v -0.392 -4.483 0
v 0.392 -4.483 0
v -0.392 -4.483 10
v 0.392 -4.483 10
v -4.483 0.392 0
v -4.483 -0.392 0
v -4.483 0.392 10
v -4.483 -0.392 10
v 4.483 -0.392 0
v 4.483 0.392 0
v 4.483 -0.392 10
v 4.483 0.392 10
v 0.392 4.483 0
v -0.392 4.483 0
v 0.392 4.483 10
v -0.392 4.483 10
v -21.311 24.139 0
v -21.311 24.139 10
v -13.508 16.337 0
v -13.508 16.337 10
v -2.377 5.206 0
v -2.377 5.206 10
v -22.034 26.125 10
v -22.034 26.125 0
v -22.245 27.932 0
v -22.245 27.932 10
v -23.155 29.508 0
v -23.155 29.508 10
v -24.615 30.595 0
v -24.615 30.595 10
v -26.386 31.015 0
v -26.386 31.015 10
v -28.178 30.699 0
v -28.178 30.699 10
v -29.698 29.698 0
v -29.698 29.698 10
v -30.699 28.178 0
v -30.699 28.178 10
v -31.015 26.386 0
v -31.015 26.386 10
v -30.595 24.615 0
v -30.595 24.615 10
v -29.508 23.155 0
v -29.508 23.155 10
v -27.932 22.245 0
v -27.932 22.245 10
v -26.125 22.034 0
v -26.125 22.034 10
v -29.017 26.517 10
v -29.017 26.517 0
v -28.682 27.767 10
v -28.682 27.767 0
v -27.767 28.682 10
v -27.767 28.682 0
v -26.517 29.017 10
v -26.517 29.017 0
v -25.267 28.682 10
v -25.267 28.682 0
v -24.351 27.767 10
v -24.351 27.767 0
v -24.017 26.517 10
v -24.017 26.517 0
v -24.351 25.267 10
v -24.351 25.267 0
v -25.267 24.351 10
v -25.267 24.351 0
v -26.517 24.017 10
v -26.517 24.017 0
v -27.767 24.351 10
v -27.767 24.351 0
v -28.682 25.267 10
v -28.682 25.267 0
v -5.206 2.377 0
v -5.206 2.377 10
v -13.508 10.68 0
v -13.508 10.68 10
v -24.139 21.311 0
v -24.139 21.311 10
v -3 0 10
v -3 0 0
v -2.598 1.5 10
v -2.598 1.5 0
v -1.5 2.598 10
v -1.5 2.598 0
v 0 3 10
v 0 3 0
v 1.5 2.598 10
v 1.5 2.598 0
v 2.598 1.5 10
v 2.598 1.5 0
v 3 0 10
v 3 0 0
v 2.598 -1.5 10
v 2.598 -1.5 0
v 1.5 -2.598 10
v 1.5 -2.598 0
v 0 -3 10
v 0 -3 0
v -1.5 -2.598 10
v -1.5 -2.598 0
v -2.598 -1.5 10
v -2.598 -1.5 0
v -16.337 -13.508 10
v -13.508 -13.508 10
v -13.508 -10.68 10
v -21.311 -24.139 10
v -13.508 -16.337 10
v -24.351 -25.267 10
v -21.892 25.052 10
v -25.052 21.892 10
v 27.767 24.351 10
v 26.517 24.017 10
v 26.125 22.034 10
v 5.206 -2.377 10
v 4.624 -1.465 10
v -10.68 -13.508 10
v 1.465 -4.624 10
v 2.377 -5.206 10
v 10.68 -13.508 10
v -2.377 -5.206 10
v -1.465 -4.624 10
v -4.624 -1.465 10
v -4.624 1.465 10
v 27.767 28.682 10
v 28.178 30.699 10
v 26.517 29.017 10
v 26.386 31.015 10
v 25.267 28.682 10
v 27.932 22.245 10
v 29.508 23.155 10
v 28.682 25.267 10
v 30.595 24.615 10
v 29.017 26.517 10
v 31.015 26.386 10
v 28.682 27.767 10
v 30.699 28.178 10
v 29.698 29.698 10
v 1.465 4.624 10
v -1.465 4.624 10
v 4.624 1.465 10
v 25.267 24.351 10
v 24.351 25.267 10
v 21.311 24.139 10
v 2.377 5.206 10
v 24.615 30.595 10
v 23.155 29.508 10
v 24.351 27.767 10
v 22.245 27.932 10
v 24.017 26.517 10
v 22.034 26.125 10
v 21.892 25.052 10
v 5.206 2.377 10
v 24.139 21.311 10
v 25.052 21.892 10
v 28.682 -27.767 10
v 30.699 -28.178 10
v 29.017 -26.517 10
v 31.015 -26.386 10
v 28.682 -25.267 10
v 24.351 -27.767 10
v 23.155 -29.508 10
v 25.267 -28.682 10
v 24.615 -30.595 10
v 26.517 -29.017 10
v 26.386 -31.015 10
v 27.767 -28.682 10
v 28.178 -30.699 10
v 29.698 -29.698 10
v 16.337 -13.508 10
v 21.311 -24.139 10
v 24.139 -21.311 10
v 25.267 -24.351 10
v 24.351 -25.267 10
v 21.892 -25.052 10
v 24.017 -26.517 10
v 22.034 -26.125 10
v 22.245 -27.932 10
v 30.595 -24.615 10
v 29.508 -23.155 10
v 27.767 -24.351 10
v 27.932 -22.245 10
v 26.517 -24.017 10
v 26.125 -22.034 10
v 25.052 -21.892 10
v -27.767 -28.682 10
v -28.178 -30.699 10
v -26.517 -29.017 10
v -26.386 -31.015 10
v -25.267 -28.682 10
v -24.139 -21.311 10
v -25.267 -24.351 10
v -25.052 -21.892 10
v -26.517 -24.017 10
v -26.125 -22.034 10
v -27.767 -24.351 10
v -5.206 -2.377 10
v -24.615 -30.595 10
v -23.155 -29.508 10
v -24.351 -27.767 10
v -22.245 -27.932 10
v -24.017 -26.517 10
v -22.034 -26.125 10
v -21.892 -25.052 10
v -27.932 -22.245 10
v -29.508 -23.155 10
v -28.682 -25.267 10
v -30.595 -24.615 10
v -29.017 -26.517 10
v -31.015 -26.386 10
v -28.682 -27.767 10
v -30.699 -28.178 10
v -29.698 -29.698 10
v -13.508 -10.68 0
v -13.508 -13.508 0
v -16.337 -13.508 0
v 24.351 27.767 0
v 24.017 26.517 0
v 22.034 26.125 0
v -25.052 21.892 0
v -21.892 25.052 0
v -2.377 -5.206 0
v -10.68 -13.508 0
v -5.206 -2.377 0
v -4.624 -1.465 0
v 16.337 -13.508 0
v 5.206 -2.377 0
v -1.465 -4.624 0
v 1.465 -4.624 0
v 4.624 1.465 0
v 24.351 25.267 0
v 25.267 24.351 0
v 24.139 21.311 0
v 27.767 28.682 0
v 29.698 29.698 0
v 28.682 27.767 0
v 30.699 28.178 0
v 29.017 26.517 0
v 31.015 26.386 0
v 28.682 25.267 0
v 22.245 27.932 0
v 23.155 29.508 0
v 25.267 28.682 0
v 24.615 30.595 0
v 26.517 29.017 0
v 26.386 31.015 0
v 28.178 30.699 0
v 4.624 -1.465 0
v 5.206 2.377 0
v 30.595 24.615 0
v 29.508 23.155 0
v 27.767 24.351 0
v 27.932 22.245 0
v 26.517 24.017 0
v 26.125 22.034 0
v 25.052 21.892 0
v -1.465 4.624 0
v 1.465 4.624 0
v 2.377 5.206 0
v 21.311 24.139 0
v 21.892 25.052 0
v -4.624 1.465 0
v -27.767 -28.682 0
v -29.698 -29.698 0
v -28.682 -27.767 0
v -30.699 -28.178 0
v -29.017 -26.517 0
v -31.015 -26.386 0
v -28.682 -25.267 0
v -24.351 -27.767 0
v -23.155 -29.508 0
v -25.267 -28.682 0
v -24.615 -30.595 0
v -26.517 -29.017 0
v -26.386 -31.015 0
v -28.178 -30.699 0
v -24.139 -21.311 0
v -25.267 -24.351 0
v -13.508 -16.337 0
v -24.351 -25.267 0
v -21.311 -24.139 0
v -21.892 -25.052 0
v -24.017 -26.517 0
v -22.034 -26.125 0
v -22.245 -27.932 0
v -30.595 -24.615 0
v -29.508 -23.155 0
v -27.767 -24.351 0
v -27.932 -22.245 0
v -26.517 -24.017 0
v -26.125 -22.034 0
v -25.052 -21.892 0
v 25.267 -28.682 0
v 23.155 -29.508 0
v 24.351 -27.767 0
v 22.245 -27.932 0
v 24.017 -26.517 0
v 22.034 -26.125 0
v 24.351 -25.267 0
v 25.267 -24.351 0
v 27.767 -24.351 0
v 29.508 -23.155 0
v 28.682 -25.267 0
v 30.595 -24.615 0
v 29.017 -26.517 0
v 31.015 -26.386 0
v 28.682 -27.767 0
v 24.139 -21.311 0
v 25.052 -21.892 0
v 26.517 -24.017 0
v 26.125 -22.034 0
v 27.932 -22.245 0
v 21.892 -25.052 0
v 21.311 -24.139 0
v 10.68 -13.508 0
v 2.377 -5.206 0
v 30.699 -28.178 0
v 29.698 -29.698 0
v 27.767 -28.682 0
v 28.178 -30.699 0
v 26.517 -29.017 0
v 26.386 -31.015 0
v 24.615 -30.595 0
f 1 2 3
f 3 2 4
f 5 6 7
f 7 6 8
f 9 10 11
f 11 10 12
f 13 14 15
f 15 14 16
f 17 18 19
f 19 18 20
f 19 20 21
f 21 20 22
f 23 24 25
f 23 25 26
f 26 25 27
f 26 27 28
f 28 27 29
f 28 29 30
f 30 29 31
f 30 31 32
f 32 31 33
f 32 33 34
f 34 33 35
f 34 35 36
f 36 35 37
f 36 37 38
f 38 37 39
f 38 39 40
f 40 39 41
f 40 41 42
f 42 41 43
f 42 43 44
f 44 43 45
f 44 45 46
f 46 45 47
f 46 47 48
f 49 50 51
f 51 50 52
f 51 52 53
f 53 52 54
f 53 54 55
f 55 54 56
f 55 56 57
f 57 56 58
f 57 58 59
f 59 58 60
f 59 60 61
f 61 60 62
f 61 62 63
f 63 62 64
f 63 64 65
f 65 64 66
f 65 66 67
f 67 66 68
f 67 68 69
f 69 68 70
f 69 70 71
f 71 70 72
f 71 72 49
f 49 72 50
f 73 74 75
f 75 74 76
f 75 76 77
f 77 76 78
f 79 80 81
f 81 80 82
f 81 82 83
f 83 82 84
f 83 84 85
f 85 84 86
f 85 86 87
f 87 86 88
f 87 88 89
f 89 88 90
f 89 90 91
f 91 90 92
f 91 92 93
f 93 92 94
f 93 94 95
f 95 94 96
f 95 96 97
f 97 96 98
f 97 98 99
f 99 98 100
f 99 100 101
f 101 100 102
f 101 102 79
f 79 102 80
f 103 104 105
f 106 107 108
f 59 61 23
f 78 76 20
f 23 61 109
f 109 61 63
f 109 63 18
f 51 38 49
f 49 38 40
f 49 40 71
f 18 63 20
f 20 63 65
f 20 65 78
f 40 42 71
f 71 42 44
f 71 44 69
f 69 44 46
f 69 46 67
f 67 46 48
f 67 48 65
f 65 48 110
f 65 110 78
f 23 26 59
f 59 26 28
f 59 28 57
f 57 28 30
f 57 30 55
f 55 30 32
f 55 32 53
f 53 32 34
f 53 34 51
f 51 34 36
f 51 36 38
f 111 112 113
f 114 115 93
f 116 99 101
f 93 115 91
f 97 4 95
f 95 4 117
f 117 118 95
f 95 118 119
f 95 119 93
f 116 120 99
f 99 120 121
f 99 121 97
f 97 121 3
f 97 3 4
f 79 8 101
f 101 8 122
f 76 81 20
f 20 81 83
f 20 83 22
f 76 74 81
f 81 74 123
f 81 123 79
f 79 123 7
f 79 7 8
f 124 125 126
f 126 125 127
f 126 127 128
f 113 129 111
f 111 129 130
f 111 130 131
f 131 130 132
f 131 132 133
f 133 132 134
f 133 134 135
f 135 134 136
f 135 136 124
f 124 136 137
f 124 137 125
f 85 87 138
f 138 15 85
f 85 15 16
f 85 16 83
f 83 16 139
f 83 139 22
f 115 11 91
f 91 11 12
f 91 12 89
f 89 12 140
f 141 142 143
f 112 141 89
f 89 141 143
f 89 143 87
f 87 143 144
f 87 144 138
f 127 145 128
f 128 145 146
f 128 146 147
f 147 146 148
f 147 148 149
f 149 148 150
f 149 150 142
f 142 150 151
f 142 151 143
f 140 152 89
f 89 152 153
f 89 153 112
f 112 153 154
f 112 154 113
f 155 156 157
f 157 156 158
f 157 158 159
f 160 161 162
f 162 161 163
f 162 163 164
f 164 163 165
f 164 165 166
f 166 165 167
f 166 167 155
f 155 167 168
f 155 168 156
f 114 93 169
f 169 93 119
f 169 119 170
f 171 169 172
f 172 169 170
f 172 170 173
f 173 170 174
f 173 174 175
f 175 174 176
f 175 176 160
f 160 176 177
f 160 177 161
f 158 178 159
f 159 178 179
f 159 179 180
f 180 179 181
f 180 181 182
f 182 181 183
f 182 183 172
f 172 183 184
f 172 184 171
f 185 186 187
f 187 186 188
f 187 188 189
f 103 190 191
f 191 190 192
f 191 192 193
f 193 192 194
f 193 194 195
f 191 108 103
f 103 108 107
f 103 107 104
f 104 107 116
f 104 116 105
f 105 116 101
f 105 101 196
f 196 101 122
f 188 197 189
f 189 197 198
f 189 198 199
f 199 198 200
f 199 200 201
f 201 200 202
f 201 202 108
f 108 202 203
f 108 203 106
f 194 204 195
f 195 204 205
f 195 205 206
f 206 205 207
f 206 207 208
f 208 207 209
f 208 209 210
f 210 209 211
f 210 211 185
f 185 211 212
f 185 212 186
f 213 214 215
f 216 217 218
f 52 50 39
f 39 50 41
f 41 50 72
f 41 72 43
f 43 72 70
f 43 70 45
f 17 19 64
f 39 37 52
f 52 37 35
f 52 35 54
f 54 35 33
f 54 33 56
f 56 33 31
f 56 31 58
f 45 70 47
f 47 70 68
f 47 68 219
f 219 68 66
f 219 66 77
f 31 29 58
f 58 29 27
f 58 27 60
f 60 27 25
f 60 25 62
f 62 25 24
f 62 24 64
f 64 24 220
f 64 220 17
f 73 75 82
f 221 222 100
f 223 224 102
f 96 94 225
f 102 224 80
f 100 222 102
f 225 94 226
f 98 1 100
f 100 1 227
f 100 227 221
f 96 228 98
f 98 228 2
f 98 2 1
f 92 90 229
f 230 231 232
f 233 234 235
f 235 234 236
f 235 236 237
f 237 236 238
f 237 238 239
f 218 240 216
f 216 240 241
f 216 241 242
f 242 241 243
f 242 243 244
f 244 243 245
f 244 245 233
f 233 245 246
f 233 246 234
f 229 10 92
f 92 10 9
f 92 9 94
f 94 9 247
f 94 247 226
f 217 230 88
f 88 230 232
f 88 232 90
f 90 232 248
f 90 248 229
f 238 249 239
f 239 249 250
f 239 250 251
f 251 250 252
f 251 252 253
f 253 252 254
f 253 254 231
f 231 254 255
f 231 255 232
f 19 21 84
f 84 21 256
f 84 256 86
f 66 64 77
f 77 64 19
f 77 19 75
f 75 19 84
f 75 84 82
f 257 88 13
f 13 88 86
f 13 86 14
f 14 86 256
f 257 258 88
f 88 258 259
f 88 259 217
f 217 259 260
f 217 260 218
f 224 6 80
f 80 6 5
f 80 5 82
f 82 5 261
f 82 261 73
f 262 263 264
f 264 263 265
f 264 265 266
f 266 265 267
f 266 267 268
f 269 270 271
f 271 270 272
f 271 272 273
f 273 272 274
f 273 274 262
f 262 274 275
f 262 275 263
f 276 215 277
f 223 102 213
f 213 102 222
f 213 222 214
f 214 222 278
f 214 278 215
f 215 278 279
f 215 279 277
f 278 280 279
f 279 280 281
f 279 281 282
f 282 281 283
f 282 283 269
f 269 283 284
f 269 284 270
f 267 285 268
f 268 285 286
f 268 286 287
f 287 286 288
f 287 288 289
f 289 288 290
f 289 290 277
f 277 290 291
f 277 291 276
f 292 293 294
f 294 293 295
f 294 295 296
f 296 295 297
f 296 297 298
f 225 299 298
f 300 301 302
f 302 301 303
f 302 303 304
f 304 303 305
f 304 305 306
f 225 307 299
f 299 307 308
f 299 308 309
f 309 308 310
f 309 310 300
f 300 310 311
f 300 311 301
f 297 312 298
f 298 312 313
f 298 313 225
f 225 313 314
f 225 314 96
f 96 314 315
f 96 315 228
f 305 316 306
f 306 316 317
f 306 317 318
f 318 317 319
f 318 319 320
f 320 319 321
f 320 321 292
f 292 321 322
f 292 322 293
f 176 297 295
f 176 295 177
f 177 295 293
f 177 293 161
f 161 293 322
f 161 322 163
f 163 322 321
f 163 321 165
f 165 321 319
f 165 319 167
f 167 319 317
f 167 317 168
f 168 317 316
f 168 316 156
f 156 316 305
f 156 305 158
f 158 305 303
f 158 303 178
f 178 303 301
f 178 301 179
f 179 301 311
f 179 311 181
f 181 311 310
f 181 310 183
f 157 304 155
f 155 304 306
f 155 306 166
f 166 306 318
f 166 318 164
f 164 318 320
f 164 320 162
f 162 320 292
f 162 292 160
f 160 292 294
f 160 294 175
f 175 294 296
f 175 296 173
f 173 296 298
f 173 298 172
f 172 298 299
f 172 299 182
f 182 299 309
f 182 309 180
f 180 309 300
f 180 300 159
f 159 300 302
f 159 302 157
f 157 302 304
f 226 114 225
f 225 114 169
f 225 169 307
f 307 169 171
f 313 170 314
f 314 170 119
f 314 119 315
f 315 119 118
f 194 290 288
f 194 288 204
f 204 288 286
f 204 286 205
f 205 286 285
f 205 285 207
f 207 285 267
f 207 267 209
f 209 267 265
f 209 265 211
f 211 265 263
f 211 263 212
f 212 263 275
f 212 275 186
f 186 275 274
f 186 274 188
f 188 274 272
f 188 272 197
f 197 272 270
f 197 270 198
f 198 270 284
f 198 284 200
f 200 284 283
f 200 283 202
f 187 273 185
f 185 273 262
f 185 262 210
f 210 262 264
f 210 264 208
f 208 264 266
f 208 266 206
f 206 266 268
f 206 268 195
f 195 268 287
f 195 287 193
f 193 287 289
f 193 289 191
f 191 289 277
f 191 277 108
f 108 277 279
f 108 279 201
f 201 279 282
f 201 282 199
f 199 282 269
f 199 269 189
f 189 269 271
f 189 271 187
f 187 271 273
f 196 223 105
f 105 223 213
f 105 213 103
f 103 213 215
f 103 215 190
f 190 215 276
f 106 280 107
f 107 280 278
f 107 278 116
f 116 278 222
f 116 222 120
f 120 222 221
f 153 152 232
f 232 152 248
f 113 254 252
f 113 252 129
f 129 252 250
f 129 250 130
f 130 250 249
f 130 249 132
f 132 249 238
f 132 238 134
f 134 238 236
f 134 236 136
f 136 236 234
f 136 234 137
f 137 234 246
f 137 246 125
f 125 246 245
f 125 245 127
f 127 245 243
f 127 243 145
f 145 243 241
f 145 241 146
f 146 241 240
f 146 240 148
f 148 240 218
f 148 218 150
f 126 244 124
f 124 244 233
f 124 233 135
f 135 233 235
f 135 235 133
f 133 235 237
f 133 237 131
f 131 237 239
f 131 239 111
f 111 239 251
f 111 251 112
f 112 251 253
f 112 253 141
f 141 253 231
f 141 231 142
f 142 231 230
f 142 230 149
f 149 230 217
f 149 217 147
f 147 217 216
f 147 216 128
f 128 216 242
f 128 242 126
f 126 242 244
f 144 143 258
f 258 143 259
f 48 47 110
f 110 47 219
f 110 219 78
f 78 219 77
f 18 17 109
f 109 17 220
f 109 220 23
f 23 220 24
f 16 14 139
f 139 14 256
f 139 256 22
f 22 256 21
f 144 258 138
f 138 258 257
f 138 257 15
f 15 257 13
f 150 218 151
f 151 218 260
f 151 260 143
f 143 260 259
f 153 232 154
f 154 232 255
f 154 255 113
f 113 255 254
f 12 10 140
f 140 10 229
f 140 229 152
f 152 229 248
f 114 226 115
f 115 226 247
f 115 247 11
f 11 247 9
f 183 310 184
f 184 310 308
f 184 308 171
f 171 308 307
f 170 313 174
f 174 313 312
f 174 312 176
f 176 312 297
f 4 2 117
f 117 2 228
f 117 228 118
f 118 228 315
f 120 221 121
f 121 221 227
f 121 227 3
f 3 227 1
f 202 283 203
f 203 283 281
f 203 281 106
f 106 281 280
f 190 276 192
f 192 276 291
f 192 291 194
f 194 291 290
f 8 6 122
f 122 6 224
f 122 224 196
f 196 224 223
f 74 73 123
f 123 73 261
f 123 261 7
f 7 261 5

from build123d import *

# Parameters (mm, degrees)
BOSS_EXTRUDE1_DEPTH = 10
CIRPATTERN1_COUNT   = 4
FILLET1_R           = 2.5


with BuildPart() as part:
    # Sketch1 → Boss-Extrude1 (new body)
    with BuildSketch(Plane.XY):
        with BuildLine():
            ThreePointArc((-25.080279294, 22.251852169), (-23.334523779, 23.334523779), (-22.251852169, 25.080279294))
            Line((-22.251852169, 25.080279294), (-24.04163056, 26.870057685))
            ThreePointArc((-24.04163056, 26.870057685), (-24.022793772, 26.693726845), (-24.016504294, 26.516504294))
            ThreePointArc((-24.016504294, 26.516504294), (-24.878499941, 24.627869407), (-26.870057685, 24.04163056))
            Line((-26.870057685, 24.04163056), (-25.080279294, 22.251852169))
        make_face()
        with BuildLine():
            Line((-24.04163056, 26.870057685), (-22.251852169, 25.080279294))
            ThreePointArc((-22.251852169, 25.080279294), (-22.075731019, 25.788814307), (-22.016504294, 26.516504294))
            ThreePointArc((-22.016504294, 26.516504294), (-30.171159716, 29.142050666), (-25.080279294, 22.251852169))
            Line((-25.080279294, 22.251852169), (-26.870057685, 24.04163056))
            ThreePointArc((-26.870057685, 24.04163056), (-28.284271247, 28.284271247), (-24.04163056, 26.870057685))
        make_face()
        with BuildLine():
            ThreePointArc((-4.264652125, 1.436225), (-3.181980515, 3.181980515), (-1.436225, 4.264652125))
            Line((-1.436225, 4.264652125), (-22.251852169, 25.080279294))
            ThreePointArc((-22.251852169, 25.080279294), (-23.334523779, 23.334523779), (-25.080279294, 22.251852169))
            Line((-25.080279294, 22.251852169), (-4.264652125, 1.436225))
        make_face()
        with BuildLine():
            ThreePointArc((-2.995352392, 0.166925268), (-2.121320344, 2.121320344), (-0.166925268, 2.995352392))
            Line((-0.166925268, 2.995352392), (-1.436225, 4.264652125))
            ThreePointArc((-1.436225, 4.264652125), (-3.181980515, 3.181980515), (-4.264652125, 1.436225))
            Line((-4.264652125, 1.436225), (-2.995352392, 0.166925268))
        make_face()
        with BuildLine():
            Line((-1.436225, 4.264652125), (-0.166925268, 2.995352392))
            ThreePointArc((-0.166925268, 2.995352392), (2.061458731, 2.179538461), (3, 0))
            ThreePointArc((3, 0), (-0.083494978, -2.998837873), (-2.995352392, 0.166925268))
            Line((-2.995352392, 0.166925268), (-4.264652125, 1.436225))
            ThreePointArc((-4.264652125, 1.436225), (-0.727689988, -4.440773275), (4.5, 0))
            ThreePointArc((4.5, 0), (2.625546372, 3.654655422), (-1.436225, 4.264652125))
        make_face()
    extrude(amount=BOSS_EXTRUDE1_DEPTH)


with BuildPart() as cirpattern1_1:
    # CirPattern1: pattern copy
    add(part.part.rotate(Axis((0, 0, 0), (0, 0, 1)), 1 * 360 / CIRPATTERN1_COUNT))


with BuildPart() as cirpattern1_2:
    # CirPattern1: pattern copy
    add(part.part.rotate(Axis((0, 0, 0), (0, 0, 1)), 2 * 360 / CIRPATTERN1_COUNT))


with BuildPart() as cirpattern1_3:
    # CirPattern1: pattern copy
    add(part.part.rotate(Axis((0, 0, 0), (0, 0, 1)), 3 * 360 / CIRPATTERN1_COUNT))

    # Combine1: read off the stored shape, not the designer's step
    # Combine1: union CirPattern1_2, CirPattern1_1, part
    add(cirpattern1_2.part)
    add(cirpattern1_1.part)
    add(part.part)

    # Fillet1
    fillet1_edges = [cirpattern1_3.edges().sort_by_distance(p)[0] for p in [
        (-4.264652125, 1.436225, 5),
        (-25.080279294, 22.251852169, 5),
        (-22.251852169, 25.080279294, 5),
        (-1.436225, 4.264652125, 5),
        (-1.436225, -4.264652125, 5),
        (1.436225, 4.264652125, 5),
        (4.264652125, -1.436225, 5),
        (4.264652125, 1.436225, 5),
        (25.080279294, 22.251852169, 5),
        (22.251852169, 25.080279294, 5),
        (22.251852169, -25.080279294, 5),
        (25.080279294, -22.251852169, 5),
        (1.436225, -4.264652125, 5),
        (-4.264652125, -1.436225, 5),
        (-25.080279294, -22.251852169, 5),
        (-22.251852169, -25.080279294, 5),
    ]]
    fillet(fillet1_edges, radius=FILLET1_R)


solid = cirpattern1_3.part
